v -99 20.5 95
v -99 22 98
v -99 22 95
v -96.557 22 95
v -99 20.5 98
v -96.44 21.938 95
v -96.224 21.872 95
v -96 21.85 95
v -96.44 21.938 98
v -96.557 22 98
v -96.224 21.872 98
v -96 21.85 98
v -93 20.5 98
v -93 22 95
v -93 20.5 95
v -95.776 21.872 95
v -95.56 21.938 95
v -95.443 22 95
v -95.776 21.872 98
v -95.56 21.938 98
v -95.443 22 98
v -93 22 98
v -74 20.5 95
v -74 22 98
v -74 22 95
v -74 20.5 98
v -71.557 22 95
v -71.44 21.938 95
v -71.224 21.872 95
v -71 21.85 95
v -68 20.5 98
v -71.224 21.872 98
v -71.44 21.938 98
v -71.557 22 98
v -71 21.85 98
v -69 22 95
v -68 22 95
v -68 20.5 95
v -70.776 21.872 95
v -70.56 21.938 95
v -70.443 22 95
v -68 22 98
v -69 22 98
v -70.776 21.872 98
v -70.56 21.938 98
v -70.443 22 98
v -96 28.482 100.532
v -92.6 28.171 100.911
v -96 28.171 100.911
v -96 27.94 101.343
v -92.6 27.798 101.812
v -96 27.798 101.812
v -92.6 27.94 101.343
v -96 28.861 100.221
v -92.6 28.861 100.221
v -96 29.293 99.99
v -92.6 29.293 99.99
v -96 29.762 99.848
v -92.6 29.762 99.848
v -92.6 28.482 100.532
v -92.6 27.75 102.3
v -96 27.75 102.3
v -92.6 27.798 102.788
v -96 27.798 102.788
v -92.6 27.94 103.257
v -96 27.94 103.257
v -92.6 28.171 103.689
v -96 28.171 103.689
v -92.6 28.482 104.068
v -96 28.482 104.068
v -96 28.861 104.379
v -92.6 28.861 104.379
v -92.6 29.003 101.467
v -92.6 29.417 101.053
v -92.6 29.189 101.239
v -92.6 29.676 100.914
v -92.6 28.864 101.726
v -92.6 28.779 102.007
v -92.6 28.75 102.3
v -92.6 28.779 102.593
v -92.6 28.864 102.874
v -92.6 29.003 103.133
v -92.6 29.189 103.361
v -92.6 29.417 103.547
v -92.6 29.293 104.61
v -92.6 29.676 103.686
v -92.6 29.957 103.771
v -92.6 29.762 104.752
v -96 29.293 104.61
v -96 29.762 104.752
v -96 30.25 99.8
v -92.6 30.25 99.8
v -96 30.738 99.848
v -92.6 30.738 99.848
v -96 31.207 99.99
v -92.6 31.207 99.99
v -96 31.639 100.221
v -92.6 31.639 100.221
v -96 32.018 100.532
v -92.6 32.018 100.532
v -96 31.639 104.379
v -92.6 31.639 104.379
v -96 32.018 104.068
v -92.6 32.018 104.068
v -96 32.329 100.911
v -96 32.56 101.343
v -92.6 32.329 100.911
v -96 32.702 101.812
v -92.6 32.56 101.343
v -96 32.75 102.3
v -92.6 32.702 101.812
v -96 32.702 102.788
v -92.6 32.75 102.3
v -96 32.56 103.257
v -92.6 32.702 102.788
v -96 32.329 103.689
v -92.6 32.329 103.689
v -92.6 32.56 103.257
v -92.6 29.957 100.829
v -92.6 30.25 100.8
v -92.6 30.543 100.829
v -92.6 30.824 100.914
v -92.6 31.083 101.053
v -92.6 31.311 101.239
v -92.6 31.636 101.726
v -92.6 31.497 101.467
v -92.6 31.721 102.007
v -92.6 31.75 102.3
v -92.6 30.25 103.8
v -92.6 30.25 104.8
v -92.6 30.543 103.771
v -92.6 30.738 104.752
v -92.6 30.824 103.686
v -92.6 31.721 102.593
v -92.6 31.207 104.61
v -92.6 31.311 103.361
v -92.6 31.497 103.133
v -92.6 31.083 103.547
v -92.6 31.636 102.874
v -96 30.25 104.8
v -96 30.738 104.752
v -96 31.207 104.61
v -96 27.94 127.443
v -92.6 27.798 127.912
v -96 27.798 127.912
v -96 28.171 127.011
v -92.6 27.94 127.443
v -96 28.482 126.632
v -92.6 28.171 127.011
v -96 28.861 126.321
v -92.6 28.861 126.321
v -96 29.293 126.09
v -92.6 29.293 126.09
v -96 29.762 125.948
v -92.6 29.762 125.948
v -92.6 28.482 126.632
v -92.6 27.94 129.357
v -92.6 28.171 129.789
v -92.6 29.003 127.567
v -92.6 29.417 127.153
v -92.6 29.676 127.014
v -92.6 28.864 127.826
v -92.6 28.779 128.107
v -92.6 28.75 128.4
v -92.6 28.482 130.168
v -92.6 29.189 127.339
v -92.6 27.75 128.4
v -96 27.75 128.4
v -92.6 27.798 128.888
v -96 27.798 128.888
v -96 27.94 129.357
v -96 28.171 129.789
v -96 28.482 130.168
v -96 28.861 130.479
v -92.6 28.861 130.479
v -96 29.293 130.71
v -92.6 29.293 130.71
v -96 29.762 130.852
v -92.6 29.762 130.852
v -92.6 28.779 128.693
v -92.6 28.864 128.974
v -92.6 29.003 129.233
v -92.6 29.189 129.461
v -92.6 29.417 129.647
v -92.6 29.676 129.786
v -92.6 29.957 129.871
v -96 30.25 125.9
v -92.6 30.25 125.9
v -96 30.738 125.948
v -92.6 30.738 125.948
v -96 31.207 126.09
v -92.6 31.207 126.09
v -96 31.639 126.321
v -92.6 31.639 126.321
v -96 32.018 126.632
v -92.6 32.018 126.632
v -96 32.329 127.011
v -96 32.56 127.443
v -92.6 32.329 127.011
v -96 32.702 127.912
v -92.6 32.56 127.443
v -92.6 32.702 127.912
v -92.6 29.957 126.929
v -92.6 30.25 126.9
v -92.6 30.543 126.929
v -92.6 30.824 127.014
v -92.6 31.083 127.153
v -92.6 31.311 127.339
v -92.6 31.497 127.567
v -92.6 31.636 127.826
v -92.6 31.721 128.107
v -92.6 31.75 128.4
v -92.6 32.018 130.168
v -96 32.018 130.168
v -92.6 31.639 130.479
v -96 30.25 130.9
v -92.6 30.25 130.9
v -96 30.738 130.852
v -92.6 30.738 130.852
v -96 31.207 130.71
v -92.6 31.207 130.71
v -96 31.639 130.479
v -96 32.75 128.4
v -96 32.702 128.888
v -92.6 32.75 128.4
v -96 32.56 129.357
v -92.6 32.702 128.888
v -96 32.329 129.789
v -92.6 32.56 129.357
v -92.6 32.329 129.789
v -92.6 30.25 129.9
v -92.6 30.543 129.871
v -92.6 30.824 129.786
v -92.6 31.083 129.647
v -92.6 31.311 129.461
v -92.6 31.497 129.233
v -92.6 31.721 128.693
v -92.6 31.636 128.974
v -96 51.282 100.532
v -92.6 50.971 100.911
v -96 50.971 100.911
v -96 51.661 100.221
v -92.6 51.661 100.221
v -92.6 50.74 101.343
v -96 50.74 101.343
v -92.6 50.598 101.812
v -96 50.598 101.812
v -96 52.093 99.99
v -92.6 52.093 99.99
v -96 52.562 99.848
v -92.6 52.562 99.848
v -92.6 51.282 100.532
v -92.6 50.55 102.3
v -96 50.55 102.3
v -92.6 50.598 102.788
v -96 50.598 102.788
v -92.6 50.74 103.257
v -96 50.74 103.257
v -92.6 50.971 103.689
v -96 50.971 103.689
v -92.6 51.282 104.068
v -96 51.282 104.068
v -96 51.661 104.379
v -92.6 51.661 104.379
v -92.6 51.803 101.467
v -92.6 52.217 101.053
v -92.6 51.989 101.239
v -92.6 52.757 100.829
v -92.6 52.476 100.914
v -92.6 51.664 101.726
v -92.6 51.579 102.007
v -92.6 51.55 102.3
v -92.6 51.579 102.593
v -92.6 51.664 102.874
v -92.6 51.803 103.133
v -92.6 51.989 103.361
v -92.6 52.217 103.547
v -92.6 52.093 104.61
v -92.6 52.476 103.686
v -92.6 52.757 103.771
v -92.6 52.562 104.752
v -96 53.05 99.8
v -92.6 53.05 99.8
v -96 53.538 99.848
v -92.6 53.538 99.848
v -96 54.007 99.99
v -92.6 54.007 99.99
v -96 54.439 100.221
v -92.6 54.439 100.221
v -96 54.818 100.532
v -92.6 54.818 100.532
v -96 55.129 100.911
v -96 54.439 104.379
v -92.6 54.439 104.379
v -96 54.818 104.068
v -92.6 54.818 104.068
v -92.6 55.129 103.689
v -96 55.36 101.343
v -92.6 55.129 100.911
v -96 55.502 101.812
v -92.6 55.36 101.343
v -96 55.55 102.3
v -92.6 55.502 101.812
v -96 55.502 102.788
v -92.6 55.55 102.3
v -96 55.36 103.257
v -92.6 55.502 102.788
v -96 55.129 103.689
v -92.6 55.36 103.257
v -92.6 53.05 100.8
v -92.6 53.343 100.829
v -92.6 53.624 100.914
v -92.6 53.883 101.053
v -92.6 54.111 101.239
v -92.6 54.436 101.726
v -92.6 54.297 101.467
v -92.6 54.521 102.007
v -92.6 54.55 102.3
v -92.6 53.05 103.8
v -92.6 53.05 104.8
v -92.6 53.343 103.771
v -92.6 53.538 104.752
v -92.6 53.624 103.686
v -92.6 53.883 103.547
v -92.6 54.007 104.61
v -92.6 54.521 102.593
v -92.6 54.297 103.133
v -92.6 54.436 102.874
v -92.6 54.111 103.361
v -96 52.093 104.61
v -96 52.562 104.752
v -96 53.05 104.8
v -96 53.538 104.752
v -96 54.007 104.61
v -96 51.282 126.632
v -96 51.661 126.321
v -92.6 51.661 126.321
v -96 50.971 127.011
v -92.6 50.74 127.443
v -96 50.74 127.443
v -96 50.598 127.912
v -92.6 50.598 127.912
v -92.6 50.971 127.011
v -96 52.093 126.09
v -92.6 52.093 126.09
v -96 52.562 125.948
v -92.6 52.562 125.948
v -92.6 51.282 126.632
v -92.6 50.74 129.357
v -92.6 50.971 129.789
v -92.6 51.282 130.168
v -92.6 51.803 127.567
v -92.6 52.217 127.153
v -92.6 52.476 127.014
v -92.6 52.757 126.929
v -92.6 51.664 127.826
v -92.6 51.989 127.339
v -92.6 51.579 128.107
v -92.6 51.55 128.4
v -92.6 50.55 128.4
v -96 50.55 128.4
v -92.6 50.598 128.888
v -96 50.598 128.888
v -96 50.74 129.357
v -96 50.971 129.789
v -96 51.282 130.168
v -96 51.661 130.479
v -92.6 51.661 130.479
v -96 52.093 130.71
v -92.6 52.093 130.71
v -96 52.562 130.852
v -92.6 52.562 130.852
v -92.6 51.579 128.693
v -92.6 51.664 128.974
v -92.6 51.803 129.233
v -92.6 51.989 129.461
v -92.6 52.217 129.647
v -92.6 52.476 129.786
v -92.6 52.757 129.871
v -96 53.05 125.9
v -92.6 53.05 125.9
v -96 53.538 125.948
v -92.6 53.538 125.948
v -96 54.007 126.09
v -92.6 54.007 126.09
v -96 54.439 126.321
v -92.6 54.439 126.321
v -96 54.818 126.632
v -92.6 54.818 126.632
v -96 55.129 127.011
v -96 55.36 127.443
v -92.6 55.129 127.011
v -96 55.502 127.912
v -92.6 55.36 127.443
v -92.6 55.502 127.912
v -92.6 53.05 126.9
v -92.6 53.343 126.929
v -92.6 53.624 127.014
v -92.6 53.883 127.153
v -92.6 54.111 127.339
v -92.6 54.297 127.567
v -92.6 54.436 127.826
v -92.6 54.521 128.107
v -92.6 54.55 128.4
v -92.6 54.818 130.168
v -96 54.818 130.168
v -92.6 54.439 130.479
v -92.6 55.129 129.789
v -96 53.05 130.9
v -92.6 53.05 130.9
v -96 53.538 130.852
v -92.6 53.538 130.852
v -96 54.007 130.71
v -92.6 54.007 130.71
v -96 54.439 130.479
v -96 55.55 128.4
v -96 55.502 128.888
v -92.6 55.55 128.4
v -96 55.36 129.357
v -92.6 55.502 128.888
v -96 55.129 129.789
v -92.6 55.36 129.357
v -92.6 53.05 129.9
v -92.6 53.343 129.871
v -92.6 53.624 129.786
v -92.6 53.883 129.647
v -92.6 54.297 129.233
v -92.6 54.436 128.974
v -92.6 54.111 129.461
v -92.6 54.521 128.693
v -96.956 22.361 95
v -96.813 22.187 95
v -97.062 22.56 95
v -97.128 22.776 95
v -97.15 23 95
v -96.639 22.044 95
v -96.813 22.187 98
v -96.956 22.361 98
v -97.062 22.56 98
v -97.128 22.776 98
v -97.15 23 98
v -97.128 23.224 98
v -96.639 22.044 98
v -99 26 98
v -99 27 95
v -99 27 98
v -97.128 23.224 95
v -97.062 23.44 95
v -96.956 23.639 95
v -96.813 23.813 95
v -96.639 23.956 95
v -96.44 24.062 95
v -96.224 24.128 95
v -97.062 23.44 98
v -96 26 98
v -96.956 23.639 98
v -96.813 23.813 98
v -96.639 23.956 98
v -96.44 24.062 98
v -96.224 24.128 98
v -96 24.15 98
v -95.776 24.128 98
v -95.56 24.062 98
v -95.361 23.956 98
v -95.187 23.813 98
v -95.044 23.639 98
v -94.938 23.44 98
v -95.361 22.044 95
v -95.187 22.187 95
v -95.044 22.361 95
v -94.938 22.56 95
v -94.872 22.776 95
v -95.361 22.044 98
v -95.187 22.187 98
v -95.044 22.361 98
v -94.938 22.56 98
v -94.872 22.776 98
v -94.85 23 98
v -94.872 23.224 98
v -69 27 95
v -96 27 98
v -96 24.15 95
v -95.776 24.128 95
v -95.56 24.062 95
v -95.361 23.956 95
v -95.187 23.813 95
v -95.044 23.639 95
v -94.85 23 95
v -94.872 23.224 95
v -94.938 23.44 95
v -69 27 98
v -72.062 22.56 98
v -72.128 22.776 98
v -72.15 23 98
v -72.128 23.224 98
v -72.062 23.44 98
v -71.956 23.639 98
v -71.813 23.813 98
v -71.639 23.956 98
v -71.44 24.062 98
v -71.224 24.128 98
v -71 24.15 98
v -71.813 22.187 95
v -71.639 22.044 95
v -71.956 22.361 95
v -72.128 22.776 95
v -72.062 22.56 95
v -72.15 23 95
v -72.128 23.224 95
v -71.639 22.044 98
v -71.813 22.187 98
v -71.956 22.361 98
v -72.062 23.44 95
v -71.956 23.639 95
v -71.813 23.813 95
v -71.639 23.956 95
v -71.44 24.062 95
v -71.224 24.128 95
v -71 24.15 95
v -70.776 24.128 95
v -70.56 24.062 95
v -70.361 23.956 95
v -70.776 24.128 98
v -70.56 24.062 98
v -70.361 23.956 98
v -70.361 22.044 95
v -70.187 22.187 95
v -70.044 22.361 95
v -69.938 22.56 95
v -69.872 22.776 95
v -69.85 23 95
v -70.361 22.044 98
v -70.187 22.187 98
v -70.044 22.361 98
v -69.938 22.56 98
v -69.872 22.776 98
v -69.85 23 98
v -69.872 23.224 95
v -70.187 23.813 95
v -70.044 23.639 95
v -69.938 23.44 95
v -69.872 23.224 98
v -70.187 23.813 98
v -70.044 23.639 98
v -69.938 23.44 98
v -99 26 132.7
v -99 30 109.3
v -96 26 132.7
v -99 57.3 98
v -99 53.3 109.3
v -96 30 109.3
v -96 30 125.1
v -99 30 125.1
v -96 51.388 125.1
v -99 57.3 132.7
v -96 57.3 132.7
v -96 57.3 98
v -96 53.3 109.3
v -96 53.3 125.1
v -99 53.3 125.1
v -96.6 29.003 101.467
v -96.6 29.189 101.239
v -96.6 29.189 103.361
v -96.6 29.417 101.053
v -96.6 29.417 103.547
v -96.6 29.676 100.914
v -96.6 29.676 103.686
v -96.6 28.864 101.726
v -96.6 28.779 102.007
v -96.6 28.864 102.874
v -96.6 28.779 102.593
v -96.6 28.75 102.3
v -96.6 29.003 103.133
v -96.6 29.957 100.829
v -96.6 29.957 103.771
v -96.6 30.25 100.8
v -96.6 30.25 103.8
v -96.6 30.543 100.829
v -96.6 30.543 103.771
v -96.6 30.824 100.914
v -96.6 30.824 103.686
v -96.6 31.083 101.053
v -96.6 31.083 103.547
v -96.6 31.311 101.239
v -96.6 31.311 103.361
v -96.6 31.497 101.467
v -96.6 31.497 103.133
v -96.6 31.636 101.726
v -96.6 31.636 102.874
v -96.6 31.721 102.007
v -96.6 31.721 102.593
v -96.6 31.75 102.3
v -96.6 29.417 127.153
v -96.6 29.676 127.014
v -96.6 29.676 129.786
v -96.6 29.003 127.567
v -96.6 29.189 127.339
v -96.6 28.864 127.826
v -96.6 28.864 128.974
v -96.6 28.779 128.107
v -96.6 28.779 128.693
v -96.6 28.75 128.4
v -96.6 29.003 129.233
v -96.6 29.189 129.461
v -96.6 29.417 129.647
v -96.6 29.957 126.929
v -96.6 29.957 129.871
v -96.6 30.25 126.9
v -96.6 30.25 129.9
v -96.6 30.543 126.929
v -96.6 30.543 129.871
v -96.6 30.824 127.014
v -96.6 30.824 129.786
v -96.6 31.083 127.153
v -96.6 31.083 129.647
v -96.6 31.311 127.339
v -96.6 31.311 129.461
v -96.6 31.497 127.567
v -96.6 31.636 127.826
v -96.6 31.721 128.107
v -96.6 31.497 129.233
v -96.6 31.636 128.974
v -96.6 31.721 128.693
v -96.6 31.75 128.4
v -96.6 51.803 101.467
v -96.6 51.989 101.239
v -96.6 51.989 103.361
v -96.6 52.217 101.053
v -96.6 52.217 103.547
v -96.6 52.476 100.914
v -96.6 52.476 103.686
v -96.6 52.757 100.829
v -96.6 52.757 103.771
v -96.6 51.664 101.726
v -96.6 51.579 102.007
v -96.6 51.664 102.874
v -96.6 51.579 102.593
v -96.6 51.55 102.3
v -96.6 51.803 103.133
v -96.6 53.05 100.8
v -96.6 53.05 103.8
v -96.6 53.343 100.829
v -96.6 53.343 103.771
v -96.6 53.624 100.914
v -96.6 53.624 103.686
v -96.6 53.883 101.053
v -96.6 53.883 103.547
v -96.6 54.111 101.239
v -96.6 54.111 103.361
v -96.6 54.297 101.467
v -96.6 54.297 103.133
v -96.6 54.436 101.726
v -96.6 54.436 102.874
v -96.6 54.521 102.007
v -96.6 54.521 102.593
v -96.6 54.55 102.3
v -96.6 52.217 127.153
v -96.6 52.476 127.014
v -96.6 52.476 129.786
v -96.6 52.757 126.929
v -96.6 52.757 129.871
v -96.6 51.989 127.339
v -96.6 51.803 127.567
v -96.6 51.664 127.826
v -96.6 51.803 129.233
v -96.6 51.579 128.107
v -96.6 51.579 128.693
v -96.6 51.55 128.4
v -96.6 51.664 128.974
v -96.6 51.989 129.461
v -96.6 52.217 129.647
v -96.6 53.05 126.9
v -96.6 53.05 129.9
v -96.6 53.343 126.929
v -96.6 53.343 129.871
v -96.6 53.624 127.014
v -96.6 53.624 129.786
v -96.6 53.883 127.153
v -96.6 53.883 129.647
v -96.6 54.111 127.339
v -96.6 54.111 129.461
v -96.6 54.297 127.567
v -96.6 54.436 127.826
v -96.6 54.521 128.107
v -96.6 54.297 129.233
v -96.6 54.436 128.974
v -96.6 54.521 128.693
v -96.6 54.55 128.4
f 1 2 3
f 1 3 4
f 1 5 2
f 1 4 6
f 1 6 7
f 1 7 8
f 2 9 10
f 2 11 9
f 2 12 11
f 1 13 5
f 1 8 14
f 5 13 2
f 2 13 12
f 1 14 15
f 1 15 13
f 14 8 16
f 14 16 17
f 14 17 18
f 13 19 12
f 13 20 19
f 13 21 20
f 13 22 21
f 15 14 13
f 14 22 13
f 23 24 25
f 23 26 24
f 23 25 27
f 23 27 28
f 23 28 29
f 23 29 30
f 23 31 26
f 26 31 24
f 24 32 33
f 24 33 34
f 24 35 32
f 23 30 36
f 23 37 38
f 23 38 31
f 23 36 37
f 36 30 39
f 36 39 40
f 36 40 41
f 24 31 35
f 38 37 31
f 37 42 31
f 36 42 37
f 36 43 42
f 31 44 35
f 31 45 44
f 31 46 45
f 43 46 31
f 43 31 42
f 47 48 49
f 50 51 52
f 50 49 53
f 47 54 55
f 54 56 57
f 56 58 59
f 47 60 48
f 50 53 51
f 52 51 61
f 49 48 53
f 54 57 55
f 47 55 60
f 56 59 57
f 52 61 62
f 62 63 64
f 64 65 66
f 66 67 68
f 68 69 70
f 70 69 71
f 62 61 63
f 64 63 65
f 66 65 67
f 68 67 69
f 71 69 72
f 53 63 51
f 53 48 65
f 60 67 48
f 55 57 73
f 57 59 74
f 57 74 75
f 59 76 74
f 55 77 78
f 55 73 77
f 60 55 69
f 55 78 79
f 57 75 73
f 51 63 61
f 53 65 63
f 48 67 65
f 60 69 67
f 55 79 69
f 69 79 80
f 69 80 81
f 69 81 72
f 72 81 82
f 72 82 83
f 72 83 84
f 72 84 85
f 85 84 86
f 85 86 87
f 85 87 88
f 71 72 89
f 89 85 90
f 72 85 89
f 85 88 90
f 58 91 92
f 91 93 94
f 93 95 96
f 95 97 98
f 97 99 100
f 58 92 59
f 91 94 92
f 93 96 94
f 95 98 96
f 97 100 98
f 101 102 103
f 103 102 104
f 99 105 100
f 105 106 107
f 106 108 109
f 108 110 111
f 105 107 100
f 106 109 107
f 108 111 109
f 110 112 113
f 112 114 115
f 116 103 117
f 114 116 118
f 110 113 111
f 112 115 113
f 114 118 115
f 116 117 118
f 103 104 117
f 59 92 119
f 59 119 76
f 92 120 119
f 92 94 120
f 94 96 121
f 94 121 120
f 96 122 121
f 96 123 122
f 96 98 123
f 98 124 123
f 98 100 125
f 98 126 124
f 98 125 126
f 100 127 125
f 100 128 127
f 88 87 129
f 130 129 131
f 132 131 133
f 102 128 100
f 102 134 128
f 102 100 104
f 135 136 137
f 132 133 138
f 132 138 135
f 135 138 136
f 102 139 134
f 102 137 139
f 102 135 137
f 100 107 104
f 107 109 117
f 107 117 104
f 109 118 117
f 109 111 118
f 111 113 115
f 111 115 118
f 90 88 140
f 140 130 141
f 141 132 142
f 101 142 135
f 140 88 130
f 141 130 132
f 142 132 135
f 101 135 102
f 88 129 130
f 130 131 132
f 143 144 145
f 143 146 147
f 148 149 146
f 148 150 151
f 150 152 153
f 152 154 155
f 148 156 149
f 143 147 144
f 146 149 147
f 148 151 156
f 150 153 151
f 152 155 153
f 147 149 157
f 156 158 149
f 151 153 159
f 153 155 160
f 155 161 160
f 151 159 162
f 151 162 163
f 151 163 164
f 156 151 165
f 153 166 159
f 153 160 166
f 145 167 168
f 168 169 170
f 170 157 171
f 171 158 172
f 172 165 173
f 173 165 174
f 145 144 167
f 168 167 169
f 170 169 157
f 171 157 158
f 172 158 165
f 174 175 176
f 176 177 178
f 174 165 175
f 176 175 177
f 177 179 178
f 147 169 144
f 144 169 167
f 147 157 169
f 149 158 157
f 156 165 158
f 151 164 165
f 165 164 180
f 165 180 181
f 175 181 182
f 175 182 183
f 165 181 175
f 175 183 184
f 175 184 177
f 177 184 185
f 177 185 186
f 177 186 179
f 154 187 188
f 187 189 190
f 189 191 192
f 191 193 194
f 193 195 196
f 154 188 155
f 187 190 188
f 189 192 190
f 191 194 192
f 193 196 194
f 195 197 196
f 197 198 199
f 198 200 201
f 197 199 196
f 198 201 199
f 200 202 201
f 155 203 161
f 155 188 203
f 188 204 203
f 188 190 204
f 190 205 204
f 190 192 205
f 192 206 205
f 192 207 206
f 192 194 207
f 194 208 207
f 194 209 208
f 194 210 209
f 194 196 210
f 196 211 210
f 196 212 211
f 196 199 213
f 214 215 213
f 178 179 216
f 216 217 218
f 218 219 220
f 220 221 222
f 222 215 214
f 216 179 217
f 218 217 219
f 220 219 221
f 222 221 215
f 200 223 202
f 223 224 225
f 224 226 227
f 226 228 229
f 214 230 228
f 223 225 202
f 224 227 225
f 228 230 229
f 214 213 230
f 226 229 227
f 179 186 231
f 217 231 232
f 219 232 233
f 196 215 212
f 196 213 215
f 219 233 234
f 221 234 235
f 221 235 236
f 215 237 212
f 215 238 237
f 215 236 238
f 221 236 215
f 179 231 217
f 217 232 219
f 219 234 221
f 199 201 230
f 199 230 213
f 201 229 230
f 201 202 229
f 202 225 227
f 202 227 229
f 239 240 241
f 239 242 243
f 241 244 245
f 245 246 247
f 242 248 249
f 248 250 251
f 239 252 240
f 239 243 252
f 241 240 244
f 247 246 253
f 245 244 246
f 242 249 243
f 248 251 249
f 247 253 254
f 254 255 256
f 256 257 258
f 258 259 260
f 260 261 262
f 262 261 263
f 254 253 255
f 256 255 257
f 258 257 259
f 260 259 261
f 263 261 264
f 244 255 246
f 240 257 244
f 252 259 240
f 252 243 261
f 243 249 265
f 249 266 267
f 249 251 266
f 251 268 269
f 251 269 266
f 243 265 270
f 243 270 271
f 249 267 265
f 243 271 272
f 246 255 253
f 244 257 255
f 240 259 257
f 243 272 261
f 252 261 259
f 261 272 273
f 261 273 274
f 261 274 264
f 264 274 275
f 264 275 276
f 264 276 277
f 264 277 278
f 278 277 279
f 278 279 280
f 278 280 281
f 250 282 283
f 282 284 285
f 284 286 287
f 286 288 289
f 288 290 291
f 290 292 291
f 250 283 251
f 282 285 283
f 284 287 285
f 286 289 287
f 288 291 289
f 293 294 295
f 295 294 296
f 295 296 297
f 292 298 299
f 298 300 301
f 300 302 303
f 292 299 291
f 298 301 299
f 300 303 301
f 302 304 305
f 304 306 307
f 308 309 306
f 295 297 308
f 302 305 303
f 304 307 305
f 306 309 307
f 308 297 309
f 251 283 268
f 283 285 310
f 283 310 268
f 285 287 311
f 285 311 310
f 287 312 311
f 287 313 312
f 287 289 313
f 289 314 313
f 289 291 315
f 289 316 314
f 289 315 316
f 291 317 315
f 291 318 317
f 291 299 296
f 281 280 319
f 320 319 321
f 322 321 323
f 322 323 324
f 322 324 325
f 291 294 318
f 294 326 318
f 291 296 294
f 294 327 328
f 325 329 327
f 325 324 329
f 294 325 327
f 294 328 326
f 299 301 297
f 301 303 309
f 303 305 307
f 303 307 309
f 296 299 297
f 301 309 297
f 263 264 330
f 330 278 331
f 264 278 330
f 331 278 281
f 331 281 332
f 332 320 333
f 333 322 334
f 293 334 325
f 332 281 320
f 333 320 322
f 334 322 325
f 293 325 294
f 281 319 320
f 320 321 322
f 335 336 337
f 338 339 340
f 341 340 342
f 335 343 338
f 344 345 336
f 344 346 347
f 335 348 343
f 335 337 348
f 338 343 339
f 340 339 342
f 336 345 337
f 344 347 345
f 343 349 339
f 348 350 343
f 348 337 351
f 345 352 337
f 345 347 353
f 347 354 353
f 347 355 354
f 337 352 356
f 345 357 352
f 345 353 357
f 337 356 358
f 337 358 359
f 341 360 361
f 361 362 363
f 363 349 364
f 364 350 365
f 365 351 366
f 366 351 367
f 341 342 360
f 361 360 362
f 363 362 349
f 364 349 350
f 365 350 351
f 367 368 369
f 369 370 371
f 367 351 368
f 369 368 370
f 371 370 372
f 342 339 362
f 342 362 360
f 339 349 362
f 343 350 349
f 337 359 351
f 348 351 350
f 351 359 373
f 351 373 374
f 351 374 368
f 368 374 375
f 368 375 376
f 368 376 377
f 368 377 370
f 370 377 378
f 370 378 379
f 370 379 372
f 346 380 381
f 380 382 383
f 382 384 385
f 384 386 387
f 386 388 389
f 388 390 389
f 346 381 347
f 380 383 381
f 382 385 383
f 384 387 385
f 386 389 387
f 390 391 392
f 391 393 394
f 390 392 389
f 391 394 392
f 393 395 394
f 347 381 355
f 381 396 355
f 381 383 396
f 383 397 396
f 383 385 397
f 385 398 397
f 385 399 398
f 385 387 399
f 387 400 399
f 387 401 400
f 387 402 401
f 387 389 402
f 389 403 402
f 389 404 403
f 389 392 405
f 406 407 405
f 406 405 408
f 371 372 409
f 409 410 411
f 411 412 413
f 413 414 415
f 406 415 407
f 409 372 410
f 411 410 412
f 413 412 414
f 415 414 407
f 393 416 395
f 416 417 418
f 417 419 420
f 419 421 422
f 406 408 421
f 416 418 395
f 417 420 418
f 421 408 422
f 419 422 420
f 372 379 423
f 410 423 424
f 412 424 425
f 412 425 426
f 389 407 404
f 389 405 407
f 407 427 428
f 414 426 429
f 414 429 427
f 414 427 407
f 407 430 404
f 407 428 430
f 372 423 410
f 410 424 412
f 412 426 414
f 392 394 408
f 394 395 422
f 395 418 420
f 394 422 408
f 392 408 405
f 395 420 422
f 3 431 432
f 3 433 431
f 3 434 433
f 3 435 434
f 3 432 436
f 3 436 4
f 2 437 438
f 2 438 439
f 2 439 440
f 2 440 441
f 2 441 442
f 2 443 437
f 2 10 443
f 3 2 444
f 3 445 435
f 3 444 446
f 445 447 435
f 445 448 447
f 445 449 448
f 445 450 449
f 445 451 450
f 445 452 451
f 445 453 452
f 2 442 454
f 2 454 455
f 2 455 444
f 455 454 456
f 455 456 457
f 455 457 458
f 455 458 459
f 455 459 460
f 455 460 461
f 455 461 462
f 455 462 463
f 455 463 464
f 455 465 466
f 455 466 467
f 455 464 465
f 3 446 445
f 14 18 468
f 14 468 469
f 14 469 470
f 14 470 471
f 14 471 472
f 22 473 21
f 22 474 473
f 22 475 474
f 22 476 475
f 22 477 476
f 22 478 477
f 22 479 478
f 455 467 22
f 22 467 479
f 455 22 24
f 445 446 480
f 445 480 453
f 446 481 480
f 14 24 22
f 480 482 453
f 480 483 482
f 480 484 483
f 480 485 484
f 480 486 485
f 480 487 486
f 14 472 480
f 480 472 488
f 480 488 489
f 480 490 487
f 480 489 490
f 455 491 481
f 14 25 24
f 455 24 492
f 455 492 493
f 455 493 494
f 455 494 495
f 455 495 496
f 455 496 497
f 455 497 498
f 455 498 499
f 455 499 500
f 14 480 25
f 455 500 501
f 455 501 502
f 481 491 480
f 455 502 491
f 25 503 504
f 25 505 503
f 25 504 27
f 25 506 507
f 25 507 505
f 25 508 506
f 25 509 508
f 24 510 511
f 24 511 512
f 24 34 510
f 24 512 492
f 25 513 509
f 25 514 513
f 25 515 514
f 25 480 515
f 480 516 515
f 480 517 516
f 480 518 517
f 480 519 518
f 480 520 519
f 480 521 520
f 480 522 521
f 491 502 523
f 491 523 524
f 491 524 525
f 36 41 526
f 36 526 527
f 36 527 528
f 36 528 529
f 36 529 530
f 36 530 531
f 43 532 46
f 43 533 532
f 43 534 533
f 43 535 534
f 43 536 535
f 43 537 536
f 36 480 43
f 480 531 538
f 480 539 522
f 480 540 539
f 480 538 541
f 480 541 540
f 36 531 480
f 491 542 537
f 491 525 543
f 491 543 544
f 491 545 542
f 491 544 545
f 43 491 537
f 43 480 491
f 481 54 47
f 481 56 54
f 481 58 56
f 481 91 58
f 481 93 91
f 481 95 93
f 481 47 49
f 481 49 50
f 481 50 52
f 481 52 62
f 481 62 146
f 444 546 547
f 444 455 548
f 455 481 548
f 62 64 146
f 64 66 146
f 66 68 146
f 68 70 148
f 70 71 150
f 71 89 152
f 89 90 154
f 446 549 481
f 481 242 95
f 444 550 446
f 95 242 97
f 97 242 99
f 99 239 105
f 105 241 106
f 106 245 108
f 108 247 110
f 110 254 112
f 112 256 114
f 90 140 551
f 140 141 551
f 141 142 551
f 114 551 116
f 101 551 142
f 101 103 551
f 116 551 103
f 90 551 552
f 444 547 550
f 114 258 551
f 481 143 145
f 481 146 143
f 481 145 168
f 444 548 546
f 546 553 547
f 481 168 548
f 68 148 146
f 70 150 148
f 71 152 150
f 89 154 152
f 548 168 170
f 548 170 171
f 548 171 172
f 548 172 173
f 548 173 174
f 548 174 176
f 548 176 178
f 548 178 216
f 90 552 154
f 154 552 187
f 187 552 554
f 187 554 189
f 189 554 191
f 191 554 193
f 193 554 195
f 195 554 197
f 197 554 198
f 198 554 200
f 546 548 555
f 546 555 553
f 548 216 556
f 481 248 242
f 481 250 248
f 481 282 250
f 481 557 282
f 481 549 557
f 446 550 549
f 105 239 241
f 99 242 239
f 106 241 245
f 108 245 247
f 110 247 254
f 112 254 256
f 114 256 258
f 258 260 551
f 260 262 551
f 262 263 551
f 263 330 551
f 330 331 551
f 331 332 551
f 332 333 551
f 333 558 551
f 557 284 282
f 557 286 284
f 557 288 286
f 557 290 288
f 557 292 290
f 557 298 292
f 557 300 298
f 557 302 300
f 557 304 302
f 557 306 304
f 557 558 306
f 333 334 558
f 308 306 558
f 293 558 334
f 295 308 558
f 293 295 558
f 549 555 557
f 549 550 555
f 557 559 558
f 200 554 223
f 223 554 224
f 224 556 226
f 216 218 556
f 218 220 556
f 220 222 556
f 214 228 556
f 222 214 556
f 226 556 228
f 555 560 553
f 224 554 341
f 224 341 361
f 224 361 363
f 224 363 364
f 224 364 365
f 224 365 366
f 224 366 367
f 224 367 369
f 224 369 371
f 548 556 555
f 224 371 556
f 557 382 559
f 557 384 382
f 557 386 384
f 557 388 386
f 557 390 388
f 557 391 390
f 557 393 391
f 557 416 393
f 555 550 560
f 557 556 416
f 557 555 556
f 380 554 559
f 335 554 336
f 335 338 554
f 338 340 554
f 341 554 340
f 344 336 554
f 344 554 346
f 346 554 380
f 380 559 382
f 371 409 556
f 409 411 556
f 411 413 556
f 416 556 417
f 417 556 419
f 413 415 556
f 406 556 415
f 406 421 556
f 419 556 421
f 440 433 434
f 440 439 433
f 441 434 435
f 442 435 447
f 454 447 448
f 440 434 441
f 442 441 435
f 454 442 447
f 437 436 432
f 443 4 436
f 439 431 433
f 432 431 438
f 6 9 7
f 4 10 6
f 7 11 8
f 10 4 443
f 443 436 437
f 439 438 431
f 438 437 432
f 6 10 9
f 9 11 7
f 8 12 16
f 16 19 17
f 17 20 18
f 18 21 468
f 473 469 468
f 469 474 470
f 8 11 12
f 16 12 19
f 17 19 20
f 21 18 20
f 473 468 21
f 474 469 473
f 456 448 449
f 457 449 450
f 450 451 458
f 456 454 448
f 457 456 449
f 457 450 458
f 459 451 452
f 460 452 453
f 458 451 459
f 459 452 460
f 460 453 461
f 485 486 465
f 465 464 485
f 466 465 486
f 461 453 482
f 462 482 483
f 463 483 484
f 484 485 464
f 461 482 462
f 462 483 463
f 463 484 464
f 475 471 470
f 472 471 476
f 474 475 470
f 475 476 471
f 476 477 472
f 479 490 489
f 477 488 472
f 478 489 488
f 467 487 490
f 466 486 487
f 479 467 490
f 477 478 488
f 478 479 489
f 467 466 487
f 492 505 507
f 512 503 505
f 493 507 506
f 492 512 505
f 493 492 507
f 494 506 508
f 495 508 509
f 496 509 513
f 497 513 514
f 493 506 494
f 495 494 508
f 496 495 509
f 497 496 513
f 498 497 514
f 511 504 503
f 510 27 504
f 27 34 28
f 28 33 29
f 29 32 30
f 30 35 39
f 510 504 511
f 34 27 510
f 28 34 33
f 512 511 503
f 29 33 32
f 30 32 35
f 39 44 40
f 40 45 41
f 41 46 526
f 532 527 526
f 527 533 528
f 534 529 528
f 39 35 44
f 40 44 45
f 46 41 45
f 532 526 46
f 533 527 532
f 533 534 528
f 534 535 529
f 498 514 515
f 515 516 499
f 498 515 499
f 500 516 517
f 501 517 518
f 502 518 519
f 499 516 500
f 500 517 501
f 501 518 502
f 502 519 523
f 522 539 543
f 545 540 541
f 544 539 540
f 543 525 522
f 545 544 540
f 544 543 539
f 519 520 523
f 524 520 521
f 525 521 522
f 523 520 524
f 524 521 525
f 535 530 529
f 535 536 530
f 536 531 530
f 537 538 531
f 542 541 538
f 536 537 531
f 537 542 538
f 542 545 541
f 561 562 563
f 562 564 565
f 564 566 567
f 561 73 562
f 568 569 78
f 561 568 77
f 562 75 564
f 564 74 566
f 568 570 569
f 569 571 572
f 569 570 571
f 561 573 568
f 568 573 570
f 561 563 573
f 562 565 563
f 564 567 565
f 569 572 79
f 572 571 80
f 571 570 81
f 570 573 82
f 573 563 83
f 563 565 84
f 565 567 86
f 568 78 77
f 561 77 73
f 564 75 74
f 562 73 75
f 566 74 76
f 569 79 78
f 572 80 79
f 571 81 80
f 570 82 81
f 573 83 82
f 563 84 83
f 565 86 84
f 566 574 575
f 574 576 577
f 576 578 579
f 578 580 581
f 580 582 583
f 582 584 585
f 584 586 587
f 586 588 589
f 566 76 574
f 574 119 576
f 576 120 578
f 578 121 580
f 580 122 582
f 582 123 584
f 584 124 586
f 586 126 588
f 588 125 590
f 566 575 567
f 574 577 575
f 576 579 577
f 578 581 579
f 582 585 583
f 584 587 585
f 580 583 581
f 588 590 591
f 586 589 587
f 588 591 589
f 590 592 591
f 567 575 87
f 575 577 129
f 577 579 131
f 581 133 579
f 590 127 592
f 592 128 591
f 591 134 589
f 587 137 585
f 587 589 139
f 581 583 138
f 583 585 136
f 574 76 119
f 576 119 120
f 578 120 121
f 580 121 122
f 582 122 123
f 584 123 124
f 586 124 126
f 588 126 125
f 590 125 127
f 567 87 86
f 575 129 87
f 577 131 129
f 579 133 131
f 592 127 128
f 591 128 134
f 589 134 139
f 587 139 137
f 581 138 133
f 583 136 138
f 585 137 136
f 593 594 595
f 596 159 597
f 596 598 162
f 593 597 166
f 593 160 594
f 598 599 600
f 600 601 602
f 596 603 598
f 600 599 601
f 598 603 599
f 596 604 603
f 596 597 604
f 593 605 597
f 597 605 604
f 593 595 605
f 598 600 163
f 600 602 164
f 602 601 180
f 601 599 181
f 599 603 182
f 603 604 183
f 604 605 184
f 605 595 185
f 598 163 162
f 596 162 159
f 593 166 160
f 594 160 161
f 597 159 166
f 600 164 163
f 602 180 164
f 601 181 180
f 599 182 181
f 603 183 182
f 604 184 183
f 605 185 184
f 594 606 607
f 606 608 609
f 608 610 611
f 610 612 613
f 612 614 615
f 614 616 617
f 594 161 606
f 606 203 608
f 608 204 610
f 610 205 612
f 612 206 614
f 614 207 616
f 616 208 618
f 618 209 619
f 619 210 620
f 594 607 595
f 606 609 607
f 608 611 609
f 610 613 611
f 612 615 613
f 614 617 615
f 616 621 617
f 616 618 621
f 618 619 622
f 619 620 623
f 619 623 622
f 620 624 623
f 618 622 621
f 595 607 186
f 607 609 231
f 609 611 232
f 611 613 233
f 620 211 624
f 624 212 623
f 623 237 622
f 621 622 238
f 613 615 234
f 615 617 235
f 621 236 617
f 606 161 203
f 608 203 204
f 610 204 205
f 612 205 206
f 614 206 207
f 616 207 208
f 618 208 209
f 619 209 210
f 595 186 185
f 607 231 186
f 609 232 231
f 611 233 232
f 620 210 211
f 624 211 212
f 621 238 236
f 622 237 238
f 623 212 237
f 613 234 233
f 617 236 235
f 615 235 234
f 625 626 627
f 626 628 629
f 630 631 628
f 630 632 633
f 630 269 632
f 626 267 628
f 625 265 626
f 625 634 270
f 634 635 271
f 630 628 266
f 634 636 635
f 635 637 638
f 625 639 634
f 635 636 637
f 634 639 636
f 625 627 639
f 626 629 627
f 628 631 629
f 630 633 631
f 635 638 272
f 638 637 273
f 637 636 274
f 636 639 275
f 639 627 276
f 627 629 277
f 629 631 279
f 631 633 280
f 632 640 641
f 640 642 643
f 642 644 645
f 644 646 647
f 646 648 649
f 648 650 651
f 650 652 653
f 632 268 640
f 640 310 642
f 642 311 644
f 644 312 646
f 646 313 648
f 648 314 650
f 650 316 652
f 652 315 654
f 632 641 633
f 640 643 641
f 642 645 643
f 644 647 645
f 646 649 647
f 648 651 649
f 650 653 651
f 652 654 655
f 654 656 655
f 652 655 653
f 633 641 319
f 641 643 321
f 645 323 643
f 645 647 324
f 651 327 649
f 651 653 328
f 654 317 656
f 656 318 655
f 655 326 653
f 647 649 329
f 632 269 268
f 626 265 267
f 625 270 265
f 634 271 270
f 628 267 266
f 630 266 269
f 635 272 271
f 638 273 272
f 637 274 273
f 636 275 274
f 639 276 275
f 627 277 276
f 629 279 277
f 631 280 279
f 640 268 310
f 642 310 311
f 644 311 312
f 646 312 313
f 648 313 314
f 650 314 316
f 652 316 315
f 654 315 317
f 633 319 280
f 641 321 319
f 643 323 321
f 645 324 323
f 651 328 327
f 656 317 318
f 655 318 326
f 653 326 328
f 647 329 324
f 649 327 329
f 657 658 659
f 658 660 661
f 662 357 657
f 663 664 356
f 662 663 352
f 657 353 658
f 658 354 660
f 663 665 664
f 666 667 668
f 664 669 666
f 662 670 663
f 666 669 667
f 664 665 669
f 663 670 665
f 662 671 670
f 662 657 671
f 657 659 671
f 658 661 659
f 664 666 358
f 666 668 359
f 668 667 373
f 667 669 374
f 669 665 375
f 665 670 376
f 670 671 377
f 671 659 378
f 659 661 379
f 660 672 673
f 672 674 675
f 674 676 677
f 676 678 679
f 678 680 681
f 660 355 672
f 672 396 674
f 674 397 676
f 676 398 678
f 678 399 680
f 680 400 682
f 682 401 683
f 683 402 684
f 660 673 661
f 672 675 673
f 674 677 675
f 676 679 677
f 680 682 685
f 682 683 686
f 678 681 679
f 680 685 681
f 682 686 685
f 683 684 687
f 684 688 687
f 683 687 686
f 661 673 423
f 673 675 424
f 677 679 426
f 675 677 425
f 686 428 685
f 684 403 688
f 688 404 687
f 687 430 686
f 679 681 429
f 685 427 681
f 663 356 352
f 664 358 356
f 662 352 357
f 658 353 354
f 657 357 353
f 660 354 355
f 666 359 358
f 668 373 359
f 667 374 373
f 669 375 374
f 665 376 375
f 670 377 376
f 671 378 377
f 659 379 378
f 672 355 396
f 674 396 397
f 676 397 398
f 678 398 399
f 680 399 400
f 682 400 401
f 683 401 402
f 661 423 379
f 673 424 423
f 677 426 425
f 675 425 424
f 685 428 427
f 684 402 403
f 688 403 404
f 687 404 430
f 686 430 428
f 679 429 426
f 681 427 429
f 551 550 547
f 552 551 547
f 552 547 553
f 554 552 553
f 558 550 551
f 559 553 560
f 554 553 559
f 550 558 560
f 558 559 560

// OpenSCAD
// =============================================================================
// OLED MOUNT — SSD1331 display bracket (split off the E-stop pod, #40)
// =============================================================================
// The OLED used to be fused to control_pod (a +y deck extension + a panel that
// dodged the Ø40 mushroom cap). Split off: this small bracket BOLTS to the pod
// deck's +y edge (2× M2 into the pod heat-sets at x-96/-71, y23) and stands a
// panel that FACES -X (rearward) beside + behind the mushroom, readable by an
// operator behind the robot. The pod deck is symmetric again.
// SPI cable (7-wire) drops off the panel back down to the Arduino Nano in the bay.
// World/trunk frame (matches control_pod).
// PRINT: OPEN ITEM (#184) — not a directive this file can state yet. The part
//   is deliberately UNPRINTABLE right now (see below: no board mount holes
//   until #35's caliper session lands). The old note here, "PETG/PA6-CF,
//   foot-down, ~5 g", was never a real answer either: "PETG/PA6-CF" names two
//   materials, and "foot-down" names a feature, not an axis. Both are still
//   open once #35 lands. slice_plate.py carries the full reasoning under
//   UNRESOLVED["oled_mount"]; do not resolve either one here by guessing.
//
// -----------------------------------------------------------------------------
// 2026-08-08 (#35 defect a / #281): pod-foot M2 holes were breaking out of
//   the -y edge (1.0mm to the edge against an r=1.15 bore -- 0.15mm open,
//   28% of the wall per check_hole_breakout.py). Fixed with two local tabs
//   under the holes (FOOT_TAB_* below) rather than moving the holes -- their
//   position is fixed by control_pod's heat-sets -- or widening the whole
//   foot, which would have eaten the mushroom dodge. See the FOOT_TAB_Y0
//   comment for the numbers. Defect (b) below (display-window holes) is
//   UNCHANGED -- still genuinely blocked on the caliper session.
// -----------------------------------------------------------------------------
// 2026-07-28 (#35): panel RESIZED to the real board; mount holes REMOVED.
// -----------------------------------------------------------------------------
// The panel was 27 x 26 mm and the SSD1331 module is 27.3 x 30.7 — the board
// overhung the plate it bolts to, on both axes. That was never going to
// assemble, and it is independent of the fault #35 was filed on (2 of the 4
// mount holes opened into the display window, the other 2 breached its edge by
// 0.15 mm).
//
// -----------------------------------------------------------------------------
// 2026-08-09 (#35b): UNBLOCKED — the owned board was calipered 2026-08-08.
// -----------------------------------------------------------------------------
// The three things this file was waiting on are all measured (dimensions.md
// "SSD1331 OLED 0.95in", CALIPERED off the owned board):
//   * hole pitch  26.1 (long axis) x 22.8 (short axis), 2.25 inset all round
//   * aperture    23.3 x 15.8, 2.0 in from each long edge, 5.5 from the TOP
//                 and 9.3 from the BOTTOM -> the display is 1.9 OFF CENTRE,
//                 toward the top. The old 20x16 CENTRED window was wrong twice:
//                 3.3 too narrow (it clipped even the ~20.4 lit region) and
//                 1.95 too low (1.75 of display hidden behind the plate).
//   * depth       glass front -> PCB back 3.4 == BOSS_H below.
//
// MOUNTED FROM BEHIND, and that is forced, not stylistic. An M2 pan head
// (DIN 7985, O3.8) reaches 4.15 in from a hole centre, but the glass starts
// only 2.0 from each long edge -- a front-side screw head fouls the display no
// matter how it is centred. So: panel in front carrying the window, board
// behind it, four bosses on the panel's REAR face, screws entering from behind
// the board into heat-sets in those bosses. Heads bear on the PCB back and
// never touch the front face, and it pulls the board flat against the window.
//
// Header pins protrude perpendicular from the BACK (calipered), i.e. into the
// cable space behind the board -- so the panel needs no relief notch.

$fn = 32; EPS = 0.05; M2_CLEAR = 2.3;

// ---- pod-foot M2 holes (#281/#35b): breakout fix ----
// Foot was a flat 30x5x3 pad (x-99..-69, y22..27) with 2x M2 holes at y23 --
// 1.0mm from the y22 edge against an r=1.15 clearance bore, so each bore
// opened ~0.15mm past the face (28% of its wall, check_hole_breakout.py).
// fastener-schedule.md:7 -- M2 wants >=1.0mm real wall around a hole, so the
// wall needs to reach y <= 23 - 1.15 - 1.0 = 20.85. Hole positions are FIXED
// (mate into control_pod's heat-sets at x-96/-71, y23 -- fastener-schedule.md
// row "OLED bracket -> pod deck"), so the fix is more pad, not moved holes.
// Extending the WHOLE foot's -y edge would bring it within ~0.5mm of
// control_pod's Ø40 E-stop mushroom (center x-87, y0, r20) at x=-87 --
// the part was deliberately drawn with a 2mm dodge there (foot was y22 =
// mushroom r20 + 2mm). Instead: two LOCAL tabs, one per hole. The holes
// sit 9mm/16mm off the mushroom's x-87 center line, so even reaching
// FOOT_TAB_Y0 the nearest tab corner clears the mushroom circle by
// 1.4mm/4.3mm (measured by hand, see PR body) -- the original dodge at
// x=-87 is untouched.
FOOT_TAB_Y0 = 20.5;    // wall = 23 - 1.15 - 20.5 = 1.35mm (>= the 1.0mm rule)
FOOT_TAB_HW = 3;       // tab half-width in x, hole +-3mm

// ---- SSD1331 module, CALIPERED 2026-08-08 (supersedes the vendor drawing) ----
BOARD_Y = 27.3;      // board width  -> panel +y axis  (calipered 27.3)
BOARD_Z = 30.7;      // board height -> panel +z axis (header up, cable drops)
                     // calipered 30.6; the 0.1 is kept so the plate/RIM maths
                     // below is unchanged. Hole PITCH is used directly rather
                     // than derived from this, so the 0.1 cannot reach a hole.
RIM     = 2.0;       // plate margin around the board, all four sides

// Board mount pattern, CENTRED on the board and driven by the measured PITCH
// (not by inset-from-edge), so the 30.6-vs-30.7 discrepancy above cannot move
// a hole. Both pitches independently imply the same 2.25 inset, which is what
// made the axis assignment provable rather than a guess (dimensions.md).
HOLE_PITCH_Y = 22.8;   // across the 27.3 axis
HOLE_PITCH_Z = 26.1;   // along  the 30.6 axis
BOSS_D  = 5.0;         // 1.0mm wall around the O3.0 insert bore -- the minimum
                       // fastener-schedule.md:5 allows for M2. Not larger: at
                       // the TOP row the boss OD is only 0.8mm clear of the
                       // window edge, and O5.5 would cut that to 0.55.
BOSS_H  = 3.4;         // calipered glass-front -> PCB-back. Sets the standoff.
M2_INS_D = 3.0; M2_INS_L = 4.0;   // Ruthex M2 (same as jetson_case_mount)

// ---- panel geometry (derived, so the board size drives the plate) ----
PANEL_X0 = -99; PANEL_T = 3;                 // 3 mm plate, faces -X
PANEL_Y0 = 26;  PANEL_Y1 = PANEL_Y0 + BOARD_Y + 2 * RIM;   // 26 .. 57.30
PANEL_Z0 = 98;  PANEL_Z1 = PANEL_Z0 + BOARD_Z + 2 * RIM;   // 98 .. 132.70
BOARD_Y0 = PANEL_Y0 + RIM;  BOARD_Z0 = PANEL_Z0 + RIM;

// Window: the MEASURED aperture, positioned by its measured BORDERS. Not
// centred -- the display sits 1.9 high on the board, so centring it is the bug
// that hid 1.75mm of screen behind the plate.
WIN_Y = 23.3; WIN_Z = 15.8;
WIN_Y0 = BOARD_Y0 + 2.0;    // 2.0 in from each long edge (2.0+23.3+2.0 = 27.3)
WIN_Z0 = BOARD_Z0 + 9.3;    // 9.3 from the BOTTOM edge (9.3+15.8+5.5 = 30.6)

// Hole centres, derived once and reused by both the bosses and their bores.
HOLE_Y = [BOARD_Y0 + BOARD_Y/2 - HOLE_PITCH_Y/2,
          BOARD_Y0 + BOARD_Y/2 + HOLE_PITCH_Y/2];
HOLE_Z = [BOARD_Z0 + BOARD_Z/2 - HOLE_PITCH_Z/2,
          BOARD_Z0 + BOARD_Z/2 + HOLE_PITCH_Z/2];

module oled_mount() {
    difference() {
        union() {
            // foot on the pod deck +y edge (z95..98)
            translate([-99, 22, 95]) cube([30, 5, 3]);
            // local tabs under each M2 hole (breakout fix, see FOOT_TAB_* above)
            for (mx = [-96, -71])
                translate([mx - FOOT_TAB_HW, FOOT_TAB_Y0, 95])
                    cube([2 * FOOT_TAB_HW, 22 - FOOT_TAB_Y0, 3]);
            // panel: vertical, faces -X (rear), on the +y side behind the mushroom
            translate([PANEL_X0, PANEL_Y0, PANEL_Z0])
                cube([PANEL_T, PANEL_Y1 - PANEL_Y0, PANEL_Z1 - PANEL_Z0]);
            // 4 board-standoff bosses on the panel's REAR face (+x side), so
            // the board hangs behind the window and the screws come in from
            // behind it. Axis is +x, i.e. normal to the panel.
            for (hy = HOLE_Y, hz = HOLE_Z)
                translate([PANEL_X0 + PANEL_T, hy, hz])
                    rotate([0, 90, 0]) cylinder(d = BOSS_D, h = BOSS_H);
        }
        // 2x M2 down into the pod deck heat-sets
        for (mx = [-96, -71])
            translate([mx, 23, 95 - EPS]) cylinder(d = M2_CLEAR, h = 3 + 2 * EPS);
        // OLED window (on the -X face), measured aperture.
        translate([PANEL_X0 - EPS, WIN_Y0, WIN_Z0])
            cube([PANEL_T + 2 * EPS, WIN_Y, WIN_Z]);
        // M2 heat-set bores, entering each boss from its REAR face and running
        // toward the panel. Blind: 3.4 boss + 3.0 panel = 6.4 available, bore
        // 4.0 deep, so 2.4mm of panel is left in front of the insert -- above
        // the >=1.5mm blind-floor convention #70 was filed about. NOT through:
        // a through-bore here would open onto the display face.
        // rotate([0,-90,0]) -> the bore runs in -X, INTO the boss and toward the
        // panel. [0,+90,0] (which the bosses correctly use, since they stand
        // OFF the rear face) points +X and put these bores entirely in free
        // air behind the part -- rendered fine and left the mesh solid.
        for (hy = HOLE_Y, hz = HOLE_Z)
            translate([PANEL_X0 + PANEL_T + BOSS_H + EPS, hy, hz])
                rotate([0, -90, 0]) cylinder(d = M2_INS_D, h = M2_INS_L + EPS);
    }
}

oled_mount();
